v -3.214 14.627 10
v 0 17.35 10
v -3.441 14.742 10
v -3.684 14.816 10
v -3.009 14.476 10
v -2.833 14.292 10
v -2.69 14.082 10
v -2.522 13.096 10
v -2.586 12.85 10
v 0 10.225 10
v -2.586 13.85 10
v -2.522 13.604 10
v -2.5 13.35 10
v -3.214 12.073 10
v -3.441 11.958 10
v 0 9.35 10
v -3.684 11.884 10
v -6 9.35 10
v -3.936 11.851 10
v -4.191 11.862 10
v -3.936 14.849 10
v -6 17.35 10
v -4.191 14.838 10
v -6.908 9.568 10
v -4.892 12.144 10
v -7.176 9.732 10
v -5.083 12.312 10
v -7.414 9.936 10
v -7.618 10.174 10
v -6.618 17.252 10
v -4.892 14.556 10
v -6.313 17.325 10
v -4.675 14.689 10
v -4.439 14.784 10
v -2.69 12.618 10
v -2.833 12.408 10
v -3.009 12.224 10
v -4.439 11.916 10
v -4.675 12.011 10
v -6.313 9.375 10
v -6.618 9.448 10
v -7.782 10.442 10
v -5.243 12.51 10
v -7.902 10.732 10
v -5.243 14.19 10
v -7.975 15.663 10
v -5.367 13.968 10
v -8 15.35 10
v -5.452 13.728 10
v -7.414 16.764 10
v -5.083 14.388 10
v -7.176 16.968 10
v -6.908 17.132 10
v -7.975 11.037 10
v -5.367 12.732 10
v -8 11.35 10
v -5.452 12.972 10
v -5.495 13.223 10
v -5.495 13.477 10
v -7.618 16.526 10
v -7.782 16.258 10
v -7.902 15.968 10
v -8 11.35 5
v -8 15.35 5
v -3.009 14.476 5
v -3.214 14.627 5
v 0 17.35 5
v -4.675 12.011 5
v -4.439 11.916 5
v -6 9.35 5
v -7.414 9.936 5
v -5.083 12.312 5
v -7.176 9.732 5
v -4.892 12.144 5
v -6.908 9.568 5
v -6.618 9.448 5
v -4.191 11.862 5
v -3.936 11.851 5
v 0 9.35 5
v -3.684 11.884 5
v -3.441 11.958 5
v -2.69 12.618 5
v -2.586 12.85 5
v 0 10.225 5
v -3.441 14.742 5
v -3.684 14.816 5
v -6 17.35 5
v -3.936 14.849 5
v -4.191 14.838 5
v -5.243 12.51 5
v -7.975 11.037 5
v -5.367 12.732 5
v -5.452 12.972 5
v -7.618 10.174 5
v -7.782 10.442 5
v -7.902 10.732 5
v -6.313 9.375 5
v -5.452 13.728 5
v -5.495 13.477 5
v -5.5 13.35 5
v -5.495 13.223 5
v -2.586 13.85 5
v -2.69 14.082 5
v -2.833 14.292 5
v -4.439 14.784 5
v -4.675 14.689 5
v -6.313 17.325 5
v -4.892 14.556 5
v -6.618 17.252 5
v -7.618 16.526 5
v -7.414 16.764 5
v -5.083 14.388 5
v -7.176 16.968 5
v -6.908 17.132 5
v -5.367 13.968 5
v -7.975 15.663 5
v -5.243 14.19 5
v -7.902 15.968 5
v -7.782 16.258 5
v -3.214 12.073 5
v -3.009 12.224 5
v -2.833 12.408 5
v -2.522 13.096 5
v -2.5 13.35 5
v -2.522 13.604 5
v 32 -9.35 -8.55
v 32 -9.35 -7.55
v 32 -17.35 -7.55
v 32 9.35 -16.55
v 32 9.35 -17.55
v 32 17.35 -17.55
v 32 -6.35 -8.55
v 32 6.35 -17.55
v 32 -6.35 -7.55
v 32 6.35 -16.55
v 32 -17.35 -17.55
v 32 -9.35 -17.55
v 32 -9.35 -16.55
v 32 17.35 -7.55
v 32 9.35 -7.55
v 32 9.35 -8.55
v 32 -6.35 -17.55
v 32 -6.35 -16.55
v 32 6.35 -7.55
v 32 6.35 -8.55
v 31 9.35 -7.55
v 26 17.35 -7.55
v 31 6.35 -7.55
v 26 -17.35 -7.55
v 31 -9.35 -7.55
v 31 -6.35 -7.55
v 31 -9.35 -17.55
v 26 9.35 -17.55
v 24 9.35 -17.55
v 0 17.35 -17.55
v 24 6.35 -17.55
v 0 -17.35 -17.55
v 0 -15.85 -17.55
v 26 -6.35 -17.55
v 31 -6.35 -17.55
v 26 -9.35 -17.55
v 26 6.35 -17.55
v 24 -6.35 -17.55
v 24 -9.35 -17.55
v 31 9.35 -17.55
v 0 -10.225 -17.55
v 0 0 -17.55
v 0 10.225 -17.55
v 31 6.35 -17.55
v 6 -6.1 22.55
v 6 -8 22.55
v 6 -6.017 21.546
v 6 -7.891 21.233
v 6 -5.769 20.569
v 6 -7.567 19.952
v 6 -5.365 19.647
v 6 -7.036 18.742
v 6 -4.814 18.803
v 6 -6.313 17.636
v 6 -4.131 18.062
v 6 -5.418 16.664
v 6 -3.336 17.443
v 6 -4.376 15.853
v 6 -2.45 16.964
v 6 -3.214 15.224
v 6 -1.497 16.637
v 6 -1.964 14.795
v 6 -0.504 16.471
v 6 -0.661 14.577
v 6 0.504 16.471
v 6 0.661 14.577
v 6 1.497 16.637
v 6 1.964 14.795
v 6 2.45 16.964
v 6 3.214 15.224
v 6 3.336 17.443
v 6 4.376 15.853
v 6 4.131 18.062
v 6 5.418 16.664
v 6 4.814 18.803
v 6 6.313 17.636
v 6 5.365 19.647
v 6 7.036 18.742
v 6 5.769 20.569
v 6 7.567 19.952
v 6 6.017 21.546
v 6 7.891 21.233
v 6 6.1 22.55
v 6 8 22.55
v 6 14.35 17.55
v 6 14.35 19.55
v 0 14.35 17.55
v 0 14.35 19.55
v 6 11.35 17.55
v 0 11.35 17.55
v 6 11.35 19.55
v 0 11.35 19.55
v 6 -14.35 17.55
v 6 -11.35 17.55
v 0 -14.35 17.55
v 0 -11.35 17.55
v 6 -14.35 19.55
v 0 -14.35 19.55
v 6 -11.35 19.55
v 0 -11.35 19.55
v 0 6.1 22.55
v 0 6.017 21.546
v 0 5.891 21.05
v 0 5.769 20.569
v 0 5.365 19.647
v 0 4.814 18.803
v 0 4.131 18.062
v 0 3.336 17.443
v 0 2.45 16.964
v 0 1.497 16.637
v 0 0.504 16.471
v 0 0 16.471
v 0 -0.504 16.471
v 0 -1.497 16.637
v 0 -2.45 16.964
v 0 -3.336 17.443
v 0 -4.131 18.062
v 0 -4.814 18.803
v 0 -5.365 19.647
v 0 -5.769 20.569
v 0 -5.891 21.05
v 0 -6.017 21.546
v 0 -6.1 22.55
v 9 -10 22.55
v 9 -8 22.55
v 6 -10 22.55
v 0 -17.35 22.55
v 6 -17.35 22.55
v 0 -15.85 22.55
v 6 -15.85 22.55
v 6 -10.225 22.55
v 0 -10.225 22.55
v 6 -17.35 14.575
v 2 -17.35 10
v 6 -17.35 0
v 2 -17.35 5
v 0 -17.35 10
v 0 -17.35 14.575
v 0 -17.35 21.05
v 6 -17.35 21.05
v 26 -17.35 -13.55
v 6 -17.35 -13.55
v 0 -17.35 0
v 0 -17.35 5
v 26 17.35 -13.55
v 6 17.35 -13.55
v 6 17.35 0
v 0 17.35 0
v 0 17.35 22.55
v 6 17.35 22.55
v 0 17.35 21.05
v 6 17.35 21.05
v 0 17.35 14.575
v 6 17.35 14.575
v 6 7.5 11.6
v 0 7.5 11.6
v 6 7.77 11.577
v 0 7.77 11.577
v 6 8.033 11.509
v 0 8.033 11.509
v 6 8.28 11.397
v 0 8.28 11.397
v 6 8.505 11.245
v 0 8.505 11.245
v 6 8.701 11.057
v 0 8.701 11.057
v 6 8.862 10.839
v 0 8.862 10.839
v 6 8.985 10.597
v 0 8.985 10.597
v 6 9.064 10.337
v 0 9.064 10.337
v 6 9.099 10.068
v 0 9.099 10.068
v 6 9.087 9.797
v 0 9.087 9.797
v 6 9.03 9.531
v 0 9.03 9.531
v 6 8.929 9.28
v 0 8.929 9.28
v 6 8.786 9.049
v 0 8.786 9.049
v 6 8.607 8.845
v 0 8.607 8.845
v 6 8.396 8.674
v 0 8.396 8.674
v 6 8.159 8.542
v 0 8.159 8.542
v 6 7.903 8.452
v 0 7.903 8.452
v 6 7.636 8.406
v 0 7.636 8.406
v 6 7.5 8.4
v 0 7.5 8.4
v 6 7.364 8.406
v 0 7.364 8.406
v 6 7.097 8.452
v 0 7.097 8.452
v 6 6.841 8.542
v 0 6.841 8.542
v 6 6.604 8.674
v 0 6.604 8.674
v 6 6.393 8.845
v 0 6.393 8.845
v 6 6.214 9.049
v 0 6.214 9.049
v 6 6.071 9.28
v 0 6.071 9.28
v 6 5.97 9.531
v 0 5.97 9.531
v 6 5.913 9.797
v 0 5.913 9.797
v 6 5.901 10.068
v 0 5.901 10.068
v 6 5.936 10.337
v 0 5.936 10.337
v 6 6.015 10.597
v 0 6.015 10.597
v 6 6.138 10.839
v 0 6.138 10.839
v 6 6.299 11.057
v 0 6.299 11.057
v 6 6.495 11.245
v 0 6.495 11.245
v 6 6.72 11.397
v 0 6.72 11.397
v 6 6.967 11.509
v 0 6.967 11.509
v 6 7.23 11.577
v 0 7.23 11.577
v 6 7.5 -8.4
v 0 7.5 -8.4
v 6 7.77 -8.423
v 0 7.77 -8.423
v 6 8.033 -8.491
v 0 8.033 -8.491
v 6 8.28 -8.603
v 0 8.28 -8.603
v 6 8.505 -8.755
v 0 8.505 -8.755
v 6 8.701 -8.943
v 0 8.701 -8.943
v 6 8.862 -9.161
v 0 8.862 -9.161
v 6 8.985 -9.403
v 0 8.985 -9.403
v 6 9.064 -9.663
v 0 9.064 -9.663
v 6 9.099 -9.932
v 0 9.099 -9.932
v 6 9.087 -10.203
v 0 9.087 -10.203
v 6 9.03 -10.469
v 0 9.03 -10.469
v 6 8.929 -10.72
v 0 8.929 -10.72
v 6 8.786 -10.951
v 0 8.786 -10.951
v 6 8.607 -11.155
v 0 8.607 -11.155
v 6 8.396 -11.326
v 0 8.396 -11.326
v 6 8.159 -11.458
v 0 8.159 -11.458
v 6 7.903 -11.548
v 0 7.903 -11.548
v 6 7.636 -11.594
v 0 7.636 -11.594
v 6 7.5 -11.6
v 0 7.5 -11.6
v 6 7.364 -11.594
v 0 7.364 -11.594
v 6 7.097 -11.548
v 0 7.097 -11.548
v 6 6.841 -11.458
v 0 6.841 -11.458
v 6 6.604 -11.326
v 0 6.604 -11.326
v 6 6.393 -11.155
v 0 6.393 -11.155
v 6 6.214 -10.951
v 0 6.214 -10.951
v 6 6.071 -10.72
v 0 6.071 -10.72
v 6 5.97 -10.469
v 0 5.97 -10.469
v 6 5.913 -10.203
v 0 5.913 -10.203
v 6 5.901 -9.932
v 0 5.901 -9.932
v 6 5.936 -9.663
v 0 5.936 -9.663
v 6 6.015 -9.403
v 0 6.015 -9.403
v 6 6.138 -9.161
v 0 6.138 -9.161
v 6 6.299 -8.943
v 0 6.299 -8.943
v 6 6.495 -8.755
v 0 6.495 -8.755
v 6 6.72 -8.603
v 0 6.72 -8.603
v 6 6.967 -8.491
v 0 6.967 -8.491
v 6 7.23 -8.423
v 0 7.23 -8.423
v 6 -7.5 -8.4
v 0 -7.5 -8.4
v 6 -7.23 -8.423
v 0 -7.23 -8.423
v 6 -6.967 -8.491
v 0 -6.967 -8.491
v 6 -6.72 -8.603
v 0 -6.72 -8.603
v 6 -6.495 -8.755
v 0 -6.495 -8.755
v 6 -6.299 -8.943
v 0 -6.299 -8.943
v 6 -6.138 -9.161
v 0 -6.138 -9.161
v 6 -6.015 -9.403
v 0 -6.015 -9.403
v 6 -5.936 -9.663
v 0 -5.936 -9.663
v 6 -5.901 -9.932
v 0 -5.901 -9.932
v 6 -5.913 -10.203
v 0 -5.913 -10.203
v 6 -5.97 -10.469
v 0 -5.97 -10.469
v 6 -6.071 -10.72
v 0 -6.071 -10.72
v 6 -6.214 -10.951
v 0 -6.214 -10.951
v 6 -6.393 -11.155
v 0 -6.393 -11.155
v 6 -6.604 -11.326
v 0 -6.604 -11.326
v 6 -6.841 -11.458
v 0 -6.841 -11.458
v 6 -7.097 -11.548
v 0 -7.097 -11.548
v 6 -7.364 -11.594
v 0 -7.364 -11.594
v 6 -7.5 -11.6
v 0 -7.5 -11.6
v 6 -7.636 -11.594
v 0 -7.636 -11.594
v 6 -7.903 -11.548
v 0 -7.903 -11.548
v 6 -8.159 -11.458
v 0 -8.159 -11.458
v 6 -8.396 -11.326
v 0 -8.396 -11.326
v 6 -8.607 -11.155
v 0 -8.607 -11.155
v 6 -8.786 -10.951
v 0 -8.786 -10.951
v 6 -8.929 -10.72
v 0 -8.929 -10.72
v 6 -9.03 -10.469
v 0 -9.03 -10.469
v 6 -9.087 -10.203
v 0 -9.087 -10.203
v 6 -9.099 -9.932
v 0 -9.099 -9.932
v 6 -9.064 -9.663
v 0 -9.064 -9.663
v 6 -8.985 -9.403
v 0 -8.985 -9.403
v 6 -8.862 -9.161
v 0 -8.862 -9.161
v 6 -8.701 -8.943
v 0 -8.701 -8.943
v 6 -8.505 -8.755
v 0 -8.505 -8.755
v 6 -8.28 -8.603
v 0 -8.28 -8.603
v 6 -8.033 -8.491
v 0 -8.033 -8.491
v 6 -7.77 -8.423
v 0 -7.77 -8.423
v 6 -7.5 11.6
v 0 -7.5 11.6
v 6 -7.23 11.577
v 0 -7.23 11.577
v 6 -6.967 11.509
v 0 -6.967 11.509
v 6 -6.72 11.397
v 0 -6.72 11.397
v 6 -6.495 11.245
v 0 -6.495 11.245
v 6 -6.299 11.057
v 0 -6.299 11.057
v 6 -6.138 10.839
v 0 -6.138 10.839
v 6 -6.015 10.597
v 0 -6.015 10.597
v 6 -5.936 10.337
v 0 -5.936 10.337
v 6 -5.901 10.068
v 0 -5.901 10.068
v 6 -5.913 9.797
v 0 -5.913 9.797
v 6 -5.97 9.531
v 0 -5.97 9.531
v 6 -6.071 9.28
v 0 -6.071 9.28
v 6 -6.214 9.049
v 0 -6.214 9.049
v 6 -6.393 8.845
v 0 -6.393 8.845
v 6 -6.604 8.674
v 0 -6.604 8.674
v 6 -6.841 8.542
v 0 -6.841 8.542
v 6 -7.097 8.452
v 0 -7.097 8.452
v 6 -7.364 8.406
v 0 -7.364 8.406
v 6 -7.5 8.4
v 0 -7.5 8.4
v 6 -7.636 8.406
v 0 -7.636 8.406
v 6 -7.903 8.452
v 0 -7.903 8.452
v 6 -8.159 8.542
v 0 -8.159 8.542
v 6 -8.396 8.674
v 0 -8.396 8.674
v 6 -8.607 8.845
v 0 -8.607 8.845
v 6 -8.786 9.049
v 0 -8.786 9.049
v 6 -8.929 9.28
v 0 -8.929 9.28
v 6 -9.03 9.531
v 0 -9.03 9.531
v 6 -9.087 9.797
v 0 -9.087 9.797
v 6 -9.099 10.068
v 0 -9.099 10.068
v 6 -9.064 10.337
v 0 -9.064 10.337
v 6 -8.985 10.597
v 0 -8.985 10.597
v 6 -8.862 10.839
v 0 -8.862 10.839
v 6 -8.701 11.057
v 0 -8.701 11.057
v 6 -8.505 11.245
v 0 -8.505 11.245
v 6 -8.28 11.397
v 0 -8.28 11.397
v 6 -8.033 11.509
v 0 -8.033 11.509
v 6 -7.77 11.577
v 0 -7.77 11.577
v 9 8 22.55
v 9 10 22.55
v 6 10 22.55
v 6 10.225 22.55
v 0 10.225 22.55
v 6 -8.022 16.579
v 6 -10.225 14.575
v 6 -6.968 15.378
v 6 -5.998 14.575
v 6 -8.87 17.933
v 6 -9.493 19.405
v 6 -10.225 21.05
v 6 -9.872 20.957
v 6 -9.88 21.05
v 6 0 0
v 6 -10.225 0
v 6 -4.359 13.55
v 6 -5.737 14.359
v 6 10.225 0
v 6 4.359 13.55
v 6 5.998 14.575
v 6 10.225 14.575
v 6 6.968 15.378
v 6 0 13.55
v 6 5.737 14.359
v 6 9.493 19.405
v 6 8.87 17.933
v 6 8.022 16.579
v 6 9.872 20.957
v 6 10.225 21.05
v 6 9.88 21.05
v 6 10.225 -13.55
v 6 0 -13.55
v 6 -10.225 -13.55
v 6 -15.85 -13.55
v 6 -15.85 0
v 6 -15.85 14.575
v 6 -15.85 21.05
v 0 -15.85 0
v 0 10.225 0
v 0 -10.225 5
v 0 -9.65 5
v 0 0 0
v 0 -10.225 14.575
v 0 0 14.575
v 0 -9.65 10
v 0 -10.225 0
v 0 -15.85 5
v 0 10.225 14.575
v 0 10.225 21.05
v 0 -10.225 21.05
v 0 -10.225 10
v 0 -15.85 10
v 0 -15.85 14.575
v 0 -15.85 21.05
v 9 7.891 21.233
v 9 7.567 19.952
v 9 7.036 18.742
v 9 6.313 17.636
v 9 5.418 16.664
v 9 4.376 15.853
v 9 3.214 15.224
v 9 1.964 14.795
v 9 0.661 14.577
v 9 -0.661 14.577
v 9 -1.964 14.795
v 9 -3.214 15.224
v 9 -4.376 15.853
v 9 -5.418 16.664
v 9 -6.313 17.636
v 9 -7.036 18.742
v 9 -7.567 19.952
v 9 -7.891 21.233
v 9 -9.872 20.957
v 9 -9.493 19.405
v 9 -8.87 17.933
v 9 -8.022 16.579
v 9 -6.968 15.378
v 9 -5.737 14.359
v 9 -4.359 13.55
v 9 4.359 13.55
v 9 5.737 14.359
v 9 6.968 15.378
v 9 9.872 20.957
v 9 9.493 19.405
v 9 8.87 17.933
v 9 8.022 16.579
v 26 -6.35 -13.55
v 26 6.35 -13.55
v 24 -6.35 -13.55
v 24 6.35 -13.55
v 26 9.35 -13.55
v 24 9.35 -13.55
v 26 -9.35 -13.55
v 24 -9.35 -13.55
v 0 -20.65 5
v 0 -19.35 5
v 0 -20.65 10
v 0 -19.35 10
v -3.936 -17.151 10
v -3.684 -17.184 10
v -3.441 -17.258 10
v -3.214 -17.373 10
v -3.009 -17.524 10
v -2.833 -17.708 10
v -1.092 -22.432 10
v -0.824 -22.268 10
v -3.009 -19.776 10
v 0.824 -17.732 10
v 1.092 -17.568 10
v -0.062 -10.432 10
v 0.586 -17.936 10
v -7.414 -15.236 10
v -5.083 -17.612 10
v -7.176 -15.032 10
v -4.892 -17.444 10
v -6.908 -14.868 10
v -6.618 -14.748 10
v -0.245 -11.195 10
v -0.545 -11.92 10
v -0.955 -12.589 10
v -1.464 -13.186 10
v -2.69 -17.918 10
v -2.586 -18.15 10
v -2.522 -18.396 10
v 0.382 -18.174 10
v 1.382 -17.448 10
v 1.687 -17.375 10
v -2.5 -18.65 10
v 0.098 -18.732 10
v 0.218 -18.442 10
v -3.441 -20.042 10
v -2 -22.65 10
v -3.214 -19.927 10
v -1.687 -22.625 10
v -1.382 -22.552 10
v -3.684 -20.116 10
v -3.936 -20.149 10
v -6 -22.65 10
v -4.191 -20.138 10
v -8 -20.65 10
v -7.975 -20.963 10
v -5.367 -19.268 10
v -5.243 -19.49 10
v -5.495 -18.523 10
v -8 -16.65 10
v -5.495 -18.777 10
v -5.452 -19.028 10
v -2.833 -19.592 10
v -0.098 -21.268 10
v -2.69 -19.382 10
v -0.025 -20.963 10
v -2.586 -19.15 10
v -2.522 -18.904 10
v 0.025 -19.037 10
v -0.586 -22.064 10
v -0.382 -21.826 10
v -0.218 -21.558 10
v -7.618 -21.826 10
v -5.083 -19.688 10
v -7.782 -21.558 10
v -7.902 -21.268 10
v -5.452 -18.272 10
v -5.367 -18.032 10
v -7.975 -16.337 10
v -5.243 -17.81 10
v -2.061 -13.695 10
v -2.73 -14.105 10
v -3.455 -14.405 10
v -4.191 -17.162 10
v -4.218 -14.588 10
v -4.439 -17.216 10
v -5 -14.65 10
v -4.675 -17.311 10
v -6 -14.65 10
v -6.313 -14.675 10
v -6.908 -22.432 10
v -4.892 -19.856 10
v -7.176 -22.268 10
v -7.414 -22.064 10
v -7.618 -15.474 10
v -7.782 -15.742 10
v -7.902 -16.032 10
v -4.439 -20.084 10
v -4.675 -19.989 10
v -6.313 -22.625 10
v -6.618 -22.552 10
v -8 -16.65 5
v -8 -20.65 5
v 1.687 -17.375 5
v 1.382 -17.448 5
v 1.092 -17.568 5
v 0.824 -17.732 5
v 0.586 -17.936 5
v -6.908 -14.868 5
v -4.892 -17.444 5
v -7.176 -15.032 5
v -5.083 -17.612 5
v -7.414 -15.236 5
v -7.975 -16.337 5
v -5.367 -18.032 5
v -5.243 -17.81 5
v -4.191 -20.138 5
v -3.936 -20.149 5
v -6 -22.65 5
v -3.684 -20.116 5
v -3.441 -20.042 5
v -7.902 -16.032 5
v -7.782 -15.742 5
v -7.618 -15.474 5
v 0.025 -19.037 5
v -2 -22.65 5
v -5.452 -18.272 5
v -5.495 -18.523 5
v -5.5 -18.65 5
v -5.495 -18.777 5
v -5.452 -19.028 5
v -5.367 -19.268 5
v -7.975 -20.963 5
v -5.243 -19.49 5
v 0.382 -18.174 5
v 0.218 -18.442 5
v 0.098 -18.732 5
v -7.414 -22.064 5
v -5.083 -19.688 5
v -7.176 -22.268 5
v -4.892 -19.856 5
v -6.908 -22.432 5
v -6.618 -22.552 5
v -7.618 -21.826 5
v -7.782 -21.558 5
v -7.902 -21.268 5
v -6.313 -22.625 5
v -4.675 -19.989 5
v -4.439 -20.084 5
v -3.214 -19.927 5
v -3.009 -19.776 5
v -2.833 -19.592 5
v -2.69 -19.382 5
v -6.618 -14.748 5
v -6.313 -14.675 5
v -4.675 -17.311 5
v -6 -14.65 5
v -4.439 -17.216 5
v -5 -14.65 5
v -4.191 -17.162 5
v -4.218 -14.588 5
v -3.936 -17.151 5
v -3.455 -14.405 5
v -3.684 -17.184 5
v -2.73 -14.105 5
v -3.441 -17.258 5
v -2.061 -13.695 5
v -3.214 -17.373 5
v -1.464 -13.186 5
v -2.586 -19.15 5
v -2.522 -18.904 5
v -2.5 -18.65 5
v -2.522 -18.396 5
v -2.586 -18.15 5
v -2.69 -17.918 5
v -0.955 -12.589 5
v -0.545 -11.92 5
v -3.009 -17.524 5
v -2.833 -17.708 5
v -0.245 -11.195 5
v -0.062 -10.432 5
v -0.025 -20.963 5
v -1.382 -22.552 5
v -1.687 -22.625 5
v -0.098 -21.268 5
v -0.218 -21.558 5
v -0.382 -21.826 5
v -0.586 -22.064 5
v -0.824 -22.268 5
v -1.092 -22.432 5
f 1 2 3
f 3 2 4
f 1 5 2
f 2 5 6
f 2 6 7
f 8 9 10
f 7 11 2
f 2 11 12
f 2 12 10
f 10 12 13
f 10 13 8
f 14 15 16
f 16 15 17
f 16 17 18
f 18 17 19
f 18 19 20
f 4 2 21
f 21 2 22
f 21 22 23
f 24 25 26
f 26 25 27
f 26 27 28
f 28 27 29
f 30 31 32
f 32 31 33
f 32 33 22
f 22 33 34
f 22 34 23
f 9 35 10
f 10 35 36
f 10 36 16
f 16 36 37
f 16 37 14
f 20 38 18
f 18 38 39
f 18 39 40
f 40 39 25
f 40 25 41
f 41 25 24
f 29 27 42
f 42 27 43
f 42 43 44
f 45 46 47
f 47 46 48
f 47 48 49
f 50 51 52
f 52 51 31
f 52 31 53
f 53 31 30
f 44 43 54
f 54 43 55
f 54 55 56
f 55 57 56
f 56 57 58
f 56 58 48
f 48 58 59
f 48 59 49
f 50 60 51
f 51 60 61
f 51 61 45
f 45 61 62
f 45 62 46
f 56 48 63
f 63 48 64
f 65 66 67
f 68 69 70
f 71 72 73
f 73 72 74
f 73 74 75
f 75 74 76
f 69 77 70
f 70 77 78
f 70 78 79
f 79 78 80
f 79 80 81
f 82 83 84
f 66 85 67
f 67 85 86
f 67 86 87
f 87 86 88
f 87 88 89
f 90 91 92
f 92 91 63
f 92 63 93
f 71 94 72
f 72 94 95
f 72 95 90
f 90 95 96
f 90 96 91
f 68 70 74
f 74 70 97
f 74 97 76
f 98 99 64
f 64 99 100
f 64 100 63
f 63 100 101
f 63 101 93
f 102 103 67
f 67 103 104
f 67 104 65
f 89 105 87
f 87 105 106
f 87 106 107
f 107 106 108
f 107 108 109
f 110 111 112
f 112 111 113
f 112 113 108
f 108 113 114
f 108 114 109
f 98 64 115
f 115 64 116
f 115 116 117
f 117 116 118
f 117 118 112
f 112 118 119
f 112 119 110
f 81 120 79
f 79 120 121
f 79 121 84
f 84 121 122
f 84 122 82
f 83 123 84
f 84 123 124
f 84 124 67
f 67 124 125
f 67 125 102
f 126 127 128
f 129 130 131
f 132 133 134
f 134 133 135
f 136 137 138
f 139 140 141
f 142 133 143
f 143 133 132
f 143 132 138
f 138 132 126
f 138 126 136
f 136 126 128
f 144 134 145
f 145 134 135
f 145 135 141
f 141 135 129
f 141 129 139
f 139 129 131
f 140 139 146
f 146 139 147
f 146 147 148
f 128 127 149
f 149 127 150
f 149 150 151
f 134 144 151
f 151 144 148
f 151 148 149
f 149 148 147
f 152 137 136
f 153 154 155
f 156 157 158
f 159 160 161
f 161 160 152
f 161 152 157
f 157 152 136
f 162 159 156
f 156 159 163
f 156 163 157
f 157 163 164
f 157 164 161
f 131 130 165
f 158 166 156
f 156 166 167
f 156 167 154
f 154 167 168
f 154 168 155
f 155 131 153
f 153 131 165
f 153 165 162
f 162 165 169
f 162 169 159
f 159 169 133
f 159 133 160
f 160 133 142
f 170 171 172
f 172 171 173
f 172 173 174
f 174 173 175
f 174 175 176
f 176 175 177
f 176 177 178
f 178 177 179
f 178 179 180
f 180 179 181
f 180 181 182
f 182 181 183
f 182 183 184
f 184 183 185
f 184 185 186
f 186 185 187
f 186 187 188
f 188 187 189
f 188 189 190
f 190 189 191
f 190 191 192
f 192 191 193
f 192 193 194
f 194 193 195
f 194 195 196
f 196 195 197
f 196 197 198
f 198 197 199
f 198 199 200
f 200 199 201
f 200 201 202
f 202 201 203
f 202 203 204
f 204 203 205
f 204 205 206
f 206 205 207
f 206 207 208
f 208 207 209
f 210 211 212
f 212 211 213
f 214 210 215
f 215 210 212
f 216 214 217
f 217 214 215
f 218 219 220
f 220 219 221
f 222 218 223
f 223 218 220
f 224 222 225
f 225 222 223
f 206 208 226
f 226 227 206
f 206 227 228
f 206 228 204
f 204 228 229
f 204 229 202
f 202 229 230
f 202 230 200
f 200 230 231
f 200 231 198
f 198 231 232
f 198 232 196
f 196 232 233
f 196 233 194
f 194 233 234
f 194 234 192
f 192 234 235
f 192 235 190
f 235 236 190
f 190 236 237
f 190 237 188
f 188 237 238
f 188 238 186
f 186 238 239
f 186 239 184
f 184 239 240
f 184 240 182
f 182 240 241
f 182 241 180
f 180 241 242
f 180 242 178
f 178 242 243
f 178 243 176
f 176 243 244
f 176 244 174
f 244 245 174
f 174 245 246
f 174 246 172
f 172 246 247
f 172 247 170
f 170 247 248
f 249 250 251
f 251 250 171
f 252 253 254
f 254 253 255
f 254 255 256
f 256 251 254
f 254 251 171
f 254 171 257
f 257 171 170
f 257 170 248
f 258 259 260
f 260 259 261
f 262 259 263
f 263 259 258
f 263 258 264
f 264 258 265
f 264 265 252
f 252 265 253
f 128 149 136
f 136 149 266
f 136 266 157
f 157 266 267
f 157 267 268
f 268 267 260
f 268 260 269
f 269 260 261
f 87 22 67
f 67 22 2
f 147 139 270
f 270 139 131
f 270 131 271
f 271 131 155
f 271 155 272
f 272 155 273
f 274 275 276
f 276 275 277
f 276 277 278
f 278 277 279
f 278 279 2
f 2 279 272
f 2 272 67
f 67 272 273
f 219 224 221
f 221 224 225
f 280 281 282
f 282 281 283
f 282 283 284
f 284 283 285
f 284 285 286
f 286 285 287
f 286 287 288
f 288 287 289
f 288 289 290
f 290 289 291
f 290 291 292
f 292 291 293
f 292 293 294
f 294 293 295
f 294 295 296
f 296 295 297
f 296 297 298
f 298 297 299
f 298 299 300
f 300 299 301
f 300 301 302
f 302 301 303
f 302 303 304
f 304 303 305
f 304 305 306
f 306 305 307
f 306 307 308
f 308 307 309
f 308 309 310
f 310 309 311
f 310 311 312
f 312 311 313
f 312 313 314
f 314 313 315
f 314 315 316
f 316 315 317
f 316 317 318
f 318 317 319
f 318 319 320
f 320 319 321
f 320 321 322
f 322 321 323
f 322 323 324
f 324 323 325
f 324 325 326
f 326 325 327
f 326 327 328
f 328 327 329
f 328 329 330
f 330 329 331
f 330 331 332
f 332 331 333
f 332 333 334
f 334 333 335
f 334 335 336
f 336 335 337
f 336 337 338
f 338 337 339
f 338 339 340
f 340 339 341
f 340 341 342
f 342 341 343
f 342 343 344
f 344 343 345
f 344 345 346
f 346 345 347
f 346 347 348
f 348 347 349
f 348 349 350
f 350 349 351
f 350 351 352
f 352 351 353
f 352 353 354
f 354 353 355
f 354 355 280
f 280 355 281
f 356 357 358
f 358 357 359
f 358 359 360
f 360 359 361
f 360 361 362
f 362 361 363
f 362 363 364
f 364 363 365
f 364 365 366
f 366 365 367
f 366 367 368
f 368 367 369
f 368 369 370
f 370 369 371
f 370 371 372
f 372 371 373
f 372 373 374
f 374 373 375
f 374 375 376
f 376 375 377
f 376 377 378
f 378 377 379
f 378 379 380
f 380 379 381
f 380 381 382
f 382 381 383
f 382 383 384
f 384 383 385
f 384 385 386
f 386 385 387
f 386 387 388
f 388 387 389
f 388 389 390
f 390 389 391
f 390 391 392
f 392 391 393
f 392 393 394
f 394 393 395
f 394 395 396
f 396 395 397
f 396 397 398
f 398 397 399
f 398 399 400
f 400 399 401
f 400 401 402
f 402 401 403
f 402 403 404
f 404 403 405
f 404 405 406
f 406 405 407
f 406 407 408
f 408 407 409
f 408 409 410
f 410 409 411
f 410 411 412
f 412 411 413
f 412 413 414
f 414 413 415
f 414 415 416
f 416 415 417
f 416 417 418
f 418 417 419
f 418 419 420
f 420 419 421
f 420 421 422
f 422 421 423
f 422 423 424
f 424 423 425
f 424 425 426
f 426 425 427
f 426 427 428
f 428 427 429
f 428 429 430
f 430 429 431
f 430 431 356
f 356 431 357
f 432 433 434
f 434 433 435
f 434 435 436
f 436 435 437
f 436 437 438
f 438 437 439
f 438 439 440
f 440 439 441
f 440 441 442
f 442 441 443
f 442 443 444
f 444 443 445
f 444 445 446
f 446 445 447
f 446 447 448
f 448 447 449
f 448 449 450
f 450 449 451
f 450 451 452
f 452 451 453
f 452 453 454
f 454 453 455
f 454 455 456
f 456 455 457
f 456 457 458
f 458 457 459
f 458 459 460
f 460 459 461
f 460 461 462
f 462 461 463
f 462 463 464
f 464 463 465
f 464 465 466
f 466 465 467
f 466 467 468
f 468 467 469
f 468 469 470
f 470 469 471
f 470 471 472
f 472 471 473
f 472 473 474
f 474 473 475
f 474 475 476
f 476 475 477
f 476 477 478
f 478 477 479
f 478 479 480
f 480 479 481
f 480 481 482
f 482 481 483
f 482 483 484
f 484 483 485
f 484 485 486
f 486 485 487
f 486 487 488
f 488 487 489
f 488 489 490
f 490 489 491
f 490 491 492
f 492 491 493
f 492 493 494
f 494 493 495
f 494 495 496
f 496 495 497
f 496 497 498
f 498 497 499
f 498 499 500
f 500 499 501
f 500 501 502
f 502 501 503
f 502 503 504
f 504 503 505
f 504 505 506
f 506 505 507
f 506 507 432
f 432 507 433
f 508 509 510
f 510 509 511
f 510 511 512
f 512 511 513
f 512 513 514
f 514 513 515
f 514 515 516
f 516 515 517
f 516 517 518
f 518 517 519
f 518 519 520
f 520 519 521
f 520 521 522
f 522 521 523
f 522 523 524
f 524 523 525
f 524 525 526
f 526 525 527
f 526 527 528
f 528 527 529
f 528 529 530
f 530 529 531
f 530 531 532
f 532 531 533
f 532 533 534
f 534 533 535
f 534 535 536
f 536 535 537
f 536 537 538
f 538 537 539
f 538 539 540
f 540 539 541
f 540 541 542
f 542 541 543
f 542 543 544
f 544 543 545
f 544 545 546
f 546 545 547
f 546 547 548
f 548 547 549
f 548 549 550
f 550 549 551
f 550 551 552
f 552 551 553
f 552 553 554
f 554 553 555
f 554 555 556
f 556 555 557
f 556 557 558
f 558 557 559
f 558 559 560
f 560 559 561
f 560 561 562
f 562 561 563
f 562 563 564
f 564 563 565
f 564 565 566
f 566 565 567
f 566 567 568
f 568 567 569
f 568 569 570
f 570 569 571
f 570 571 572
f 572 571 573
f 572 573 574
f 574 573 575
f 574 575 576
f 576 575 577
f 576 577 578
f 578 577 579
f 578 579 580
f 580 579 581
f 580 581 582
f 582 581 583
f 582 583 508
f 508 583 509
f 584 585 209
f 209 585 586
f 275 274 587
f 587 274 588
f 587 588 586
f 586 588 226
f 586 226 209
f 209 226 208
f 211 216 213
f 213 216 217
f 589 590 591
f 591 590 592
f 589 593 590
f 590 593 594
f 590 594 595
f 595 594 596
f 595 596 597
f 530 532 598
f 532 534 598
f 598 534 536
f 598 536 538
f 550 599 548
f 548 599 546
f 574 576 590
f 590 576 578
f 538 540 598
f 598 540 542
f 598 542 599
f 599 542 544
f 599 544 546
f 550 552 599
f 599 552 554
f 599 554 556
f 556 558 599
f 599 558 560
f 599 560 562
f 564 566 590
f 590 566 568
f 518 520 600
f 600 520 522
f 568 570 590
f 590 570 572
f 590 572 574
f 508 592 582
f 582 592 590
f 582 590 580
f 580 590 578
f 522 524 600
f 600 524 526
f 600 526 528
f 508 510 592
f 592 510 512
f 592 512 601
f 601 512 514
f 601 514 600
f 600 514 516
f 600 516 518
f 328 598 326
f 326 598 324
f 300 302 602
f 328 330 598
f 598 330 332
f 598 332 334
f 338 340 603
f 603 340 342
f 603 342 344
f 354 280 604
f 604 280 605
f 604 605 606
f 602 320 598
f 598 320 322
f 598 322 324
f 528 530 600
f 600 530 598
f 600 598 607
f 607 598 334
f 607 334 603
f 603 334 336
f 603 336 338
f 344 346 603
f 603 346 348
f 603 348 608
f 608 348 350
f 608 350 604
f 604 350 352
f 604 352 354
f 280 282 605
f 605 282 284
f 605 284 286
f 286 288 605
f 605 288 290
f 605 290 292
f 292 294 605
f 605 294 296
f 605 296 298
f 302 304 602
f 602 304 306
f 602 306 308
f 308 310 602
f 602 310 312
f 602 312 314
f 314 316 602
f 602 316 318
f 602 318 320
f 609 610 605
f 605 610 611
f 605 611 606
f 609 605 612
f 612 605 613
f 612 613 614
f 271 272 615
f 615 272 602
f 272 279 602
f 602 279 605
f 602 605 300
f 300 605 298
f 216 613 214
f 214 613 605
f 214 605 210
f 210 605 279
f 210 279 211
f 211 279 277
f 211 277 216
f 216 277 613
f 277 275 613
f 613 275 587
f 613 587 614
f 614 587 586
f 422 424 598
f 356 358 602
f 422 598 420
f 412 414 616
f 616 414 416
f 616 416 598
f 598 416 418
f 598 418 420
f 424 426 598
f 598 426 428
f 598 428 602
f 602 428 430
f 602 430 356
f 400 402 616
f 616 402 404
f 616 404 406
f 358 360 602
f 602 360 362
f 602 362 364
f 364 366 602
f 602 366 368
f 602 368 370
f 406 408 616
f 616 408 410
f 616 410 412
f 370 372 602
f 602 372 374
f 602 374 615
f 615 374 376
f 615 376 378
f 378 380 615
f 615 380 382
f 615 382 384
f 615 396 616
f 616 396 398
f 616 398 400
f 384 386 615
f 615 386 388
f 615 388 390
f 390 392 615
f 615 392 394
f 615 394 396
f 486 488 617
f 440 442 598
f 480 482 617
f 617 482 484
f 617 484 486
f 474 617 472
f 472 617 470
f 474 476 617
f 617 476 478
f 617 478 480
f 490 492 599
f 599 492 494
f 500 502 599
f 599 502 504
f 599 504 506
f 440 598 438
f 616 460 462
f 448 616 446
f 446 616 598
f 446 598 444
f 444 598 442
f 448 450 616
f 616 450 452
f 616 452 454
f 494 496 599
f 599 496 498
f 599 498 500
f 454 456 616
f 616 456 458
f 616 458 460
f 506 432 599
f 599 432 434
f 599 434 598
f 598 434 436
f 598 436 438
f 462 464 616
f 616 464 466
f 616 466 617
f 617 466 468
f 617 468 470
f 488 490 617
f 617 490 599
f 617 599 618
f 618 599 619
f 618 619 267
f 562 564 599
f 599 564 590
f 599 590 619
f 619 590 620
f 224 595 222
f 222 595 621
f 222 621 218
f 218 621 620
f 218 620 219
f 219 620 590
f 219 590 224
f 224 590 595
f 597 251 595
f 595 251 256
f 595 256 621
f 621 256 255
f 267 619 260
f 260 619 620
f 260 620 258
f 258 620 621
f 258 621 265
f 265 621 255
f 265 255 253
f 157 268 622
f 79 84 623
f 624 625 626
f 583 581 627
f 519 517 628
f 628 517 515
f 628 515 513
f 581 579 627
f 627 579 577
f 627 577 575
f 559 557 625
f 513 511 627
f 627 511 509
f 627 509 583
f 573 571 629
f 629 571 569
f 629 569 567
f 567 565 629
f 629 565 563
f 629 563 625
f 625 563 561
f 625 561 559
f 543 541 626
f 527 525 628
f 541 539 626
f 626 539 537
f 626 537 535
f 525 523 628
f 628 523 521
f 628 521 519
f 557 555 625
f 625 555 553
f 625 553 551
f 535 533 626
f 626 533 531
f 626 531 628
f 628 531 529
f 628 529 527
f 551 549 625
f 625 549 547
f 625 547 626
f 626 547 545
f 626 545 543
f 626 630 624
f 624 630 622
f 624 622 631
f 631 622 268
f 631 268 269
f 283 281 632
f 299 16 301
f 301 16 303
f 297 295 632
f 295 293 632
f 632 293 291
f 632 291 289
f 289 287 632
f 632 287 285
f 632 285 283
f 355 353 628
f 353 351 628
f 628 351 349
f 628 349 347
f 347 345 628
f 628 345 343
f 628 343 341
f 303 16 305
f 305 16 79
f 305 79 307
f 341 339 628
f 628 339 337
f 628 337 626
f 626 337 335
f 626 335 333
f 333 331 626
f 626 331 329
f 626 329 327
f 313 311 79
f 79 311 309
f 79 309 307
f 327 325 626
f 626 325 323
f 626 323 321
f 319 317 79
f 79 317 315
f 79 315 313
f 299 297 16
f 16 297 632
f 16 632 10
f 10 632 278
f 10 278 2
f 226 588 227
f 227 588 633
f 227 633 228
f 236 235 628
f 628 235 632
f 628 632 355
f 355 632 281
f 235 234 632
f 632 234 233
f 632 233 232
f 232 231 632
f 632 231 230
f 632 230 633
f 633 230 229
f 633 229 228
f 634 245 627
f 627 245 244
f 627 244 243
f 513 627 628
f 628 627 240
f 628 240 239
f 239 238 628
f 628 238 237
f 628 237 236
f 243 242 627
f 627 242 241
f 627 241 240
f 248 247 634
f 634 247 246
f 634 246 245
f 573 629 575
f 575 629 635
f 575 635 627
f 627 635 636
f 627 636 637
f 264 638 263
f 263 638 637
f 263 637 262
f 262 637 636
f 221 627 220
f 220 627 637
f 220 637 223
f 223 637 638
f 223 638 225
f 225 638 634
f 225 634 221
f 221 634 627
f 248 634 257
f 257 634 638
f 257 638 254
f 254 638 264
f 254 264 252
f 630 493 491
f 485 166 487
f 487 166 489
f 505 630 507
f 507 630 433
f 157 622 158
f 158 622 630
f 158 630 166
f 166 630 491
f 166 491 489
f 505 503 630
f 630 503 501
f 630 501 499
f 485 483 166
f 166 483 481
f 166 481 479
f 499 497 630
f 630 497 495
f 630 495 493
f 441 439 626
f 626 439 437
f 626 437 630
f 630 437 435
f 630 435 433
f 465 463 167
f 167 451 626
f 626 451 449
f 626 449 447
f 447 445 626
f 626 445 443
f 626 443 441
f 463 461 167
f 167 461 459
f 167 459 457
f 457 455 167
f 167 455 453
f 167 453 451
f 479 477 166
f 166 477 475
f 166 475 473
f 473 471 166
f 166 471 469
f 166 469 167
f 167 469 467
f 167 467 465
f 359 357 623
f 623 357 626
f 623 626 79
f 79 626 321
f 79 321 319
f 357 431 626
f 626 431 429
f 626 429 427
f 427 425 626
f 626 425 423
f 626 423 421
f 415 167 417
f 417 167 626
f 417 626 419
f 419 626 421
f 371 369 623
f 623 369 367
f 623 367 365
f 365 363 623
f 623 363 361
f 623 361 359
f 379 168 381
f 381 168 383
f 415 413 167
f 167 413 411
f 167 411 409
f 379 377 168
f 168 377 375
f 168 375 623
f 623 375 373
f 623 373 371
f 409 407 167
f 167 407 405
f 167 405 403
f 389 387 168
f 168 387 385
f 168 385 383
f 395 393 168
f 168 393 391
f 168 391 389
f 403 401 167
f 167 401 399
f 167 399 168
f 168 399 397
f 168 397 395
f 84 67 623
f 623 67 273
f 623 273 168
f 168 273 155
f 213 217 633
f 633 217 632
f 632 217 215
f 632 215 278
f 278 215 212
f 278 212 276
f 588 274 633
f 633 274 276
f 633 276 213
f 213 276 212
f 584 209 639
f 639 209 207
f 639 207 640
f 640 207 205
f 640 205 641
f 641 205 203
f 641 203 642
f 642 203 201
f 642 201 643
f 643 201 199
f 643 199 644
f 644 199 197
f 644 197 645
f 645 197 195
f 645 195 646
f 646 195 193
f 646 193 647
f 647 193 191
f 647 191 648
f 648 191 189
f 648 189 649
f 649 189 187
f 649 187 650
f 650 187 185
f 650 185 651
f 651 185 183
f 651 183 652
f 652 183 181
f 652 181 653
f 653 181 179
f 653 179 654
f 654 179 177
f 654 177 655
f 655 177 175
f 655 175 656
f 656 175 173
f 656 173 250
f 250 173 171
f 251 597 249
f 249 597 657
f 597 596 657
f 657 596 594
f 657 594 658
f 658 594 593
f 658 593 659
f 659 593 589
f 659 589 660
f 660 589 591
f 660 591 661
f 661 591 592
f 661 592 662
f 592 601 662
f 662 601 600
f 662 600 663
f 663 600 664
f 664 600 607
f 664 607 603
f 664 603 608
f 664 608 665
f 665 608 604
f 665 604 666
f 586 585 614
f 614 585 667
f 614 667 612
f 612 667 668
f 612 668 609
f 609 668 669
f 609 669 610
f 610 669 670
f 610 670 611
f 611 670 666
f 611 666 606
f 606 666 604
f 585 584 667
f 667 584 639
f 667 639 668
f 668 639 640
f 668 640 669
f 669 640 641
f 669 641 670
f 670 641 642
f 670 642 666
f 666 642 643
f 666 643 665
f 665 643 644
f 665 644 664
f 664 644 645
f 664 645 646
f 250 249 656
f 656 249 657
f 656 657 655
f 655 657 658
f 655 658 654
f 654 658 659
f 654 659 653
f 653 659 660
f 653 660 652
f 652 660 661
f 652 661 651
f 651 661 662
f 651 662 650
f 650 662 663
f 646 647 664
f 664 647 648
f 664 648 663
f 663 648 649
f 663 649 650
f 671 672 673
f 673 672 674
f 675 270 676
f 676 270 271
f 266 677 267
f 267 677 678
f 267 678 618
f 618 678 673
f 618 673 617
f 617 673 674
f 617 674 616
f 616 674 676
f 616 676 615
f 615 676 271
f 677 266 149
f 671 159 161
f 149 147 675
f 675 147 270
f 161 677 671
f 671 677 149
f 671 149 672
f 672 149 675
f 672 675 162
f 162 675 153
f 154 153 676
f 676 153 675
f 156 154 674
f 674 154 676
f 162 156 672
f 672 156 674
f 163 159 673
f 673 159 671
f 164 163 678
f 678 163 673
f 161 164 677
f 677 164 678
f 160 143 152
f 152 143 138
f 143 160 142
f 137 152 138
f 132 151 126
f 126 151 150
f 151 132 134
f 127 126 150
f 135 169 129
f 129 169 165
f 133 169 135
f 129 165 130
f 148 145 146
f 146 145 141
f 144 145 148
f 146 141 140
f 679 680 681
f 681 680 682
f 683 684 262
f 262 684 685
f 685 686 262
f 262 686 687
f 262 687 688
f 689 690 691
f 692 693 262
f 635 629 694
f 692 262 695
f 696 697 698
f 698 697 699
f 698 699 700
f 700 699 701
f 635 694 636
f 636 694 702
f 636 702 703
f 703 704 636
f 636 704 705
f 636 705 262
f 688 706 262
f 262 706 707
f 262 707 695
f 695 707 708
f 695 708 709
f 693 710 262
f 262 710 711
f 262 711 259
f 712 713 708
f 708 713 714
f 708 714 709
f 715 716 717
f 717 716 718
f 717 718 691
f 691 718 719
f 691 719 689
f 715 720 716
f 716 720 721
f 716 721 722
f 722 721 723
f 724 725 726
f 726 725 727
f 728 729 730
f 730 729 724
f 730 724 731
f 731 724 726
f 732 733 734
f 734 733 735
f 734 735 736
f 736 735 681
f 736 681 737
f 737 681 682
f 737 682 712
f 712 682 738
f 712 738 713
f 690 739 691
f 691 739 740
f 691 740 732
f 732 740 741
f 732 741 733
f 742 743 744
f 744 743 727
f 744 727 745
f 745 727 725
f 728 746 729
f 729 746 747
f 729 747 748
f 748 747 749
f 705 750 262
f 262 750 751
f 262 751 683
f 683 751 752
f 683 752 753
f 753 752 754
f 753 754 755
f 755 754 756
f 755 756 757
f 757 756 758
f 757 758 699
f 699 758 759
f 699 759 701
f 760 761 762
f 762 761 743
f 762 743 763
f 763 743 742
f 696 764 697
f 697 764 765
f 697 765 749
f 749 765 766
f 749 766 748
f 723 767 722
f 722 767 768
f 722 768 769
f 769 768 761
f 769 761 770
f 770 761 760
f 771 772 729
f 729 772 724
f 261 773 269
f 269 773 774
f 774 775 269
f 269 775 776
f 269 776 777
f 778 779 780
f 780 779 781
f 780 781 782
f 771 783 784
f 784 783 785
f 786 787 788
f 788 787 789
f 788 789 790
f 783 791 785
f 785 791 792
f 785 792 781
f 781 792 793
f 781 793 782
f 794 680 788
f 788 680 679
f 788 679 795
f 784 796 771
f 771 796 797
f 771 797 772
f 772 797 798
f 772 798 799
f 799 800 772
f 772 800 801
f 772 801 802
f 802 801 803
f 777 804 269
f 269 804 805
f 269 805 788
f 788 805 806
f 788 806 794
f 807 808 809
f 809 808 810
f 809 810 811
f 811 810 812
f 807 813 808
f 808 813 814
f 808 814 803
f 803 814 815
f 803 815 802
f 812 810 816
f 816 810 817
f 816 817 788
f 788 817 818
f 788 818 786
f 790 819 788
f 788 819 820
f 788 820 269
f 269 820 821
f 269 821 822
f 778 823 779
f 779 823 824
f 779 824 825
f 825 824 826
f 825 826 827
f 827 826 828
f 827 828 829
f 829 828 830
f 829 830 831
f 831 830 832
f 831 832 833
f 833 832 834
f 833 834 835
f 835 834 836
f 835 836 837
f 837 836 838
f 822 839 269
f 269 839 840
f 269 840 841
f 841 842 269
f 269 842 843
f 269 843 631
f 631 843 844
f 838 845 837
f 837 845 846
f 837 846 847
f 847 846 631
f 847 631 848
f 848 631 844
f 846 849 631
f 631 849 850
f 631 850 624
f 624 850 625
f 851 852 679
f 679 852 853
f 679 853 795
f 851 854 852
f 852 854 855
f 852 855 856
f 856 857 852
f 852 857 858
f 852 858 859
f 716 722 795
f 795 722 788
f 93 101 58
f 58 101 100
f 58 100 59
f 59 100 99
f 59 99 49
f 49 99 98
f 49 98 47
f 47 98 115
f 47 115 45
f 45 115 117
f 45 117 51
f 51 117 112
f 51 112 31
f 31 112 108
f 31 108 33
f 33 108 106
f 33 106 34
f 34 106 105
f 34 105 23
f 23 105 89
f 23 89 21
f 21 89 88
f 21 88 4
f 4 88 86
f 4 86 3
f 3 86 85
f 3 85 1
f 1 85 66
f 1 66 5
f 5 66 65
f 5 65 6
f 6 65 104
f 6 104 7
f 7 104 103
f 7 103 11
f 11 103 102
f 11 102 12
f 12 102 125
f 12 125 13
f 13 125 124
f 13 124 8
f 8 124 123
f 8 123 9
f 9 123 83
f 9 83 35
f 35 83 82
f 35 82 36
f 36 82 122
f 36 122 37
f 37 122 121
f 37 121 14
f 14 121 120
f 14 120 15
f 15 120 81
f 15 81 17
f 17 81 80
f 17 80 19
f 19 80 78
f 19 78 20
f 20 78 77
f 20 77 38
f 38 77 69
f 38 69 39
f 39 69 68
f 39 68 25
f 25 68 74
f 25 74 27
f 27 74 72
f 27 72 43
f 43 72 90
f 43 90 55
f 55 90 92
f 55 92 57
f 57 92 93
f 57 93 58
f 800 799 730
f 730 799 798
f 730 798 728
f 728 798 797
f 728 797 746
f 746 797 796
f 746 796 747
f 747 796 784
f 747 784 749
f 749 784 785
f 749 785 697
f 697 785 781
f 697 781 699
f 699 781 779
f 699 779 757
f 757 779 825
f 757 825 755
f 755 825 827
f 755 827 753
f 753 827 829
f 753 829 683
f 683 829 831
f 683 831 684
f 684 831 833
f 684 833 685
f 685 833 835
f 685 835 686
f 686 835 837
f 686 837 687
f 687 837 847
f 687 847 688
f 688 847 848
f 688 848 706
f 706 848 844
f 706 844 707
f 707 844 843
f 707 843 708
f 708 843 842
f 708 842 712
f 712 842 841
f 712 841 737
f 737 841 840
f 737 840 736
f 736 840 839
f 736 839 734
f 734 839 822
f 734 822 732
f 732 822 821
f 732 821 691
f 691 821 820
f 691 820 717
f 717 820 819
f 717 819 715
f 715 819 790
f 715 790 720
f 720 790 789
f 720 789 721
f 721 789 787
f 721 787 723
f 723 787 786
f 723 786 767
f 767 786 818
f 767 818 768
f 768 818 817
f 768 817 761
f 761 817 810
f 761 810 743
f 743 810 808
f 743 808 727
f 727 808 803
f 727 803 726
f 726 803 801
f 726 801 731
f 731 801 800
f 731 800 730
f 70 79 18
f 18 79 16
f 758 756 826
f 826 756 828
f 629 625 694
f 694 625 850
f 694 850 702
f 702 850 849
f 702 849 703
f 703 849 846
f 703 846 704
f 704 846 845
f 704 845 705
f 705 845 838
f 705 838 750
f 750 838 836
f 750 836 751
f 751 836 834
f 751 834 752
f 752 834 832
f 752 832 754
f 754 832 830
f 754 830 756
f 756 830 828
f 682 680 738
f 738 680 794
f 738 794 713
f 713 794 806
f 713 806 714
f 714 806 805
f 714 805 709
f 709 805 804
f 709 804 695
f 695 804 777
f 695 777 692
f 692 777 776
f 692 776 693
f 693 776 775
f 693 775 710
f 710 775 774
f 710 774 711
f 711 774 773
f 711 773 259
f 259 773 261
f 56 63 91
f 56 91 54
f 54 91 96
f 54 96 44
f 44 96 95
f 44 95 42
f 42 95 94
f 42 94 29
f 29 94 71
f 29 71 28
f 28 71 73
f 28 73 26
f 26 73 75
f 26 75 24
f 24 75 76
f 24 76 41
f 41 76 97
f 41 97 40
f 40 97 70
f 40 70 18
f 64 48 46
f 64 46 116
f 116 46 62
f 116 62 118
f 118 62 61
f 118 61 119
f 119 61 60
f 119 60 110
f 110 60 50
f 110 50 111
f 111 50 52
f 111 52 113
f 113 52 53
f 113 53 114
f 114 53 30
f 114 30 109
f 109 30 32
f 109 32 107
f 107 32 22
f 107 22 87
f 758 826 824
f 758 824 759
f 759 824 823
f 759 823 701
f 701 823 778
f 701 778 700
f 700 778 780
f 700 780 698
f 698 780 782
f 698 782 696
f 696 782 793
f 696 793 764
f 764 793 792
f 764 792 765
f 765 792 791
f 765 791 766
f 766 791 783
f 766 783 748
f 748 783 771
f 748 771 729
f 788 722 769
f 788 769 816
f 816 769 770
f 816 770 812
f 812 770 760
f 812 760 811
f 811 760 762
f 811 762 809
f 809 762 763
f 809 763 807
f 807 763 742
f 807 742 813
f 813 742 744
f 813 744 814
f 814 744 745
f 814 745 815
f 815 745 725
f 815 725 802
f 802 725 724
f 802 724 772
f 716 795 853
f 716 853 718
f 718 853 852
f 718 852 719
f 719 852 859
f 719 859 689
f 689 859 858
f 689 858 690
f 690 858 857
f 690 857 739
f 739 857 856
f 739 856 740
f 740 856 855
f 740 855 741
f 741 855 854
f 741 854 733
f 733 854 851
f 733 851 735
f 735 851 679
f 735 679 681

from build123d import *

# Parameters (mm, degrees)
SKETCH_2_W          = 2
SKETCH_2_H          = 3
SKETCH_2_R          = 1.6
EXTRUDE_1_DEPTH     = 6
EXTRUDE_2_DEPTH     = 3
SKETCH_4_W          = 4
SKETCH_4_H          = 34.7
EXTRUDE_3_DEPTH     = 26
SKETCH_15_W         = 10
SKETCH_15_H         = 34.7
EXTRUDE_8_DEPTH     = 6
SKETCH_16_W         = 2
SKETCH_16_H         = 3
CUT_EXTRUDE_4_DEPTH = 6
CUT_EXTRUDE_5_DEPTH = 3
CUT_EXTRUDE_6_DEPTH = 3
SKETCH_20_W         = 8
SKETCH_20_H         = 5
EXTRUDE_9_DEPTH     = 40
SKETCH_22_R         = 1.5
CUT_EXTRUDE_7_DEPTH = 10
SKETCH_23_W         = 8
SKETCH_23_H         = 24
CUT_EXTRUDE_8_DEPTH = 10
FILLET_4_R          = 5
FILLET_5_R          = 2
FILLET_6_R          = 2
FILLET_7_R          = 2


with BuildPart() as part:
    # 草圖2 → 填料-伸長1 (new body)
    with BuildSketch(Plane(origin=(0, 0, 0), x_dir=(0, 0, -1), z_dir=(1, 0, 0))):
        with BuildLine():
            Line((13.55, 17.35), (-13.55, 17.35))
            Line((-13.55, 17.35), (-22.55, 17.35))
            Line((-22.55, 17.35), (-22.55, 6.1))
            ThreePointArc((-22.55, 6.1), (-16.45, 0), (-22.55, -6.1))
            Line((-22.55, -6.1), (-22.55, -17.35))
            Line((-22.55, -17.35), (-13.55, -17.35))
            Line((-13.55, -17.35), (13.55, -17.35))
            Line((13.55, -17.35), (13.55, 17.35))
        make_face()
        with Locations((-18.55, -12.85)):
            Rectangle(SKETCH_2_W, SKETCH_2_H, mode=Mode.SUBTRACT)
        with Locations((-10, -7.5)):
            Circle(SKETCH_2_R, mode=Mode.SUBTRACT)
        with Locations((10, -7.5)):
            Circle(SKETCH_2_R, mode=Mode.SUBTRACT)
        with Locations((-10, 7.5)):
            Circle(SKETCH_2_R, mode=Mode.SUBTRACT)
        with Locations((-18.55, 12.85)):
            Rectangle(SKETCH_2_W, SKETCH_2_H, mode=Mode.SUBTRACT)
        with Locations((10, 7.5)):
            Circle(SKETCH_2_R, mode=Mode.SUBTRACT)
    extrude(amount=EXTRUDE_1_DEPTH)

    # 草圖3 → 填料-伸長2 (add)
    with BuildSketch(Plane(origin=(6, 0, 0), x_dir=(0, 0, -1), z_dir=(1, 0, 0))):
        with BuildLine():
            Line((-13.55, 4.358898944), (-13.55, -4.358898944))
            ThreePointArc((-13.55, -4.358898944), (-17.239114454, -8.473163206), (-22.55, -10))
            Line((-22.55, -10), (-22.55, -8))
            ThreePointArc((-22.55, -8), (-14.55, 0), (-22.55, 8))
            Line((-22.55, 8), (-22.55, 10))
            ThreePointArc((-22.55, 10), (-17.239114454, 8.473163206), (-13.55, 4.358898944))
        make_face()
    extrude(amount=EXTRUDE_2_DEPTH)

    # 草圖4 → 填料-伸長3 (add)
    with BuildSketch(Plane.ZY):
        with Locations((-15.55, 0)):
            Rectangle(SKETCH_4_W, SKETCH_4_H)
    extrude(amount=-EXTRUDE_3_DEPTH)

    # 草圖15 → 填料-伸長8 (add)
    with BuildSketch(Plane(origin=(26, 0, 0), x_dir=(0, 0, -1), z_dir=(1, 0, 0))):
        with Locations((12.55, 0)):
            Rectangle(SKETCH_15_W, SKETCH_15_H)
    extrude(amount=EXTRUDE_8_DEPTH)

    # 草圖16 → 除料-伸長4 (cut)
    with BuildSketch(Plane(origin=(0, 0, -17.55), x_dir=(-1, 0, 0), z_dir=(0, 0, -1))):
        with Locations((-25, 7.85)):
            Rectangle(SKETCH_16_W, SKETCH_16_H)
        with Locations((-25, -7.85)):
            Rectangle(SKETCH_16_W, SKETCH_16_H)
    extrude(amount=-CUT_EXTRUDE_4_DEPTH, mode=Mode.SUBTRACT)

    # 草圖17 → 除料-伸長5 (cut)
    with BuildSketch(Plane(origin=(0, -9.35, 0), x_dir=(-1, 0, 0), z_dir=(0, -1, 0))):
        Polygon((-32, 17.55), (-31, 17.55), (-32, 16.55), align=None)
        Polygon((-32, 7.55), (-32, 8.55), (-31, 7.55), align=None)
    extrude(amount=-CUT_EXTRUDE_5_DEPTH, mode=Mode.SUBTRACT)

    # 草圖18 → 除料-伸長6 (cut)
    with BuildSketch(Plane(origin=(0, 9.35, 0), x_dir=(1, 0, 0), z_dir=(0, 1, 0))):
        Polygon((32, 17.55), (31, 17.55), (32, 16.55), align=None)
        Polygon((32, 7.55), (32, 8.55), (31, 7.55), align=None)
    extrude(amount=-CUT_EXTRUDE_6_DEPTH, mode=Mode.SUBTRACT)

    # 草圖20 → 填料-伸長9 (add)
    with BuildSketch(Plane(origin=(0, 17.35, 0), x_dir=(1, 0, 0), z_dir=(0, 1, 0))):
        with Locations((-4, -7.5)):
            Rectangle(SKETCH_20_W, SKETCH_20_H)
    extrude(amount=-EXTRUDE_9_DEPTH)

    # 草圖22 → 除料-伸長7 (cut)
    with BuildSketch(Plane.XY.offset(10)):
        with Locations((-4, 13.35)):
            Circle(SKETCH_22_R)
        with Locations((-4, -18.65)):
            Circle(SKETCH_22_R)
    extrude(amount=-CUT_EXTRUDE_7_DEPTH, mode=Mode.SUBTRACT)

    # 草圖23 → 除料-伸長8 (cut)
    with BuildSketch(Plane.XY.offset(10)):
        with Locations((-4, -2.65)):
            Rectangle(SKETCH_23_W, SKETCH_23_H)
    extrude(amount=-CUT_EXTRUDE_8_DEPTH, mode=Mode.SUBTRACT)

    # 圓角4
    fillet_4_edges = [part.edges().sort_by_distance(p)[0] for p in [
        (0, -14.65, 7.5),
    ]]
    fillet(fillet_4_edges, radius=FILLET_4_R)

    # 圓角5
    fillet_5_edges = [part.edges().sort_by_distance(p)[0] for p in [
        (0, -17.35, 7.5),
    ]]
    fillet(fillet_5_edges, radius=FILLET_5_R)

    # 圓角6
    fillet_6_edges = [part.edges().sort_by_distance(p)[0] for p in [
        (-8, -22.65, 7.5),
        (-8, 17.35, 7.5),
        (-8, -14.65, 7.5),
        (-8, 9.35, 7.5),
    ]]
    fillet(fillet_6_edges, radius=FILLET_6_R)

    # 圓角7
    fillet_7_edges = [part.edges().sort_by_distance(p)[0] for p in [
        (0, -22.65, 7.5),
    ]]
    fillet(fillet_7_edges, radius=FILLET_7_R)


solid = part.part
